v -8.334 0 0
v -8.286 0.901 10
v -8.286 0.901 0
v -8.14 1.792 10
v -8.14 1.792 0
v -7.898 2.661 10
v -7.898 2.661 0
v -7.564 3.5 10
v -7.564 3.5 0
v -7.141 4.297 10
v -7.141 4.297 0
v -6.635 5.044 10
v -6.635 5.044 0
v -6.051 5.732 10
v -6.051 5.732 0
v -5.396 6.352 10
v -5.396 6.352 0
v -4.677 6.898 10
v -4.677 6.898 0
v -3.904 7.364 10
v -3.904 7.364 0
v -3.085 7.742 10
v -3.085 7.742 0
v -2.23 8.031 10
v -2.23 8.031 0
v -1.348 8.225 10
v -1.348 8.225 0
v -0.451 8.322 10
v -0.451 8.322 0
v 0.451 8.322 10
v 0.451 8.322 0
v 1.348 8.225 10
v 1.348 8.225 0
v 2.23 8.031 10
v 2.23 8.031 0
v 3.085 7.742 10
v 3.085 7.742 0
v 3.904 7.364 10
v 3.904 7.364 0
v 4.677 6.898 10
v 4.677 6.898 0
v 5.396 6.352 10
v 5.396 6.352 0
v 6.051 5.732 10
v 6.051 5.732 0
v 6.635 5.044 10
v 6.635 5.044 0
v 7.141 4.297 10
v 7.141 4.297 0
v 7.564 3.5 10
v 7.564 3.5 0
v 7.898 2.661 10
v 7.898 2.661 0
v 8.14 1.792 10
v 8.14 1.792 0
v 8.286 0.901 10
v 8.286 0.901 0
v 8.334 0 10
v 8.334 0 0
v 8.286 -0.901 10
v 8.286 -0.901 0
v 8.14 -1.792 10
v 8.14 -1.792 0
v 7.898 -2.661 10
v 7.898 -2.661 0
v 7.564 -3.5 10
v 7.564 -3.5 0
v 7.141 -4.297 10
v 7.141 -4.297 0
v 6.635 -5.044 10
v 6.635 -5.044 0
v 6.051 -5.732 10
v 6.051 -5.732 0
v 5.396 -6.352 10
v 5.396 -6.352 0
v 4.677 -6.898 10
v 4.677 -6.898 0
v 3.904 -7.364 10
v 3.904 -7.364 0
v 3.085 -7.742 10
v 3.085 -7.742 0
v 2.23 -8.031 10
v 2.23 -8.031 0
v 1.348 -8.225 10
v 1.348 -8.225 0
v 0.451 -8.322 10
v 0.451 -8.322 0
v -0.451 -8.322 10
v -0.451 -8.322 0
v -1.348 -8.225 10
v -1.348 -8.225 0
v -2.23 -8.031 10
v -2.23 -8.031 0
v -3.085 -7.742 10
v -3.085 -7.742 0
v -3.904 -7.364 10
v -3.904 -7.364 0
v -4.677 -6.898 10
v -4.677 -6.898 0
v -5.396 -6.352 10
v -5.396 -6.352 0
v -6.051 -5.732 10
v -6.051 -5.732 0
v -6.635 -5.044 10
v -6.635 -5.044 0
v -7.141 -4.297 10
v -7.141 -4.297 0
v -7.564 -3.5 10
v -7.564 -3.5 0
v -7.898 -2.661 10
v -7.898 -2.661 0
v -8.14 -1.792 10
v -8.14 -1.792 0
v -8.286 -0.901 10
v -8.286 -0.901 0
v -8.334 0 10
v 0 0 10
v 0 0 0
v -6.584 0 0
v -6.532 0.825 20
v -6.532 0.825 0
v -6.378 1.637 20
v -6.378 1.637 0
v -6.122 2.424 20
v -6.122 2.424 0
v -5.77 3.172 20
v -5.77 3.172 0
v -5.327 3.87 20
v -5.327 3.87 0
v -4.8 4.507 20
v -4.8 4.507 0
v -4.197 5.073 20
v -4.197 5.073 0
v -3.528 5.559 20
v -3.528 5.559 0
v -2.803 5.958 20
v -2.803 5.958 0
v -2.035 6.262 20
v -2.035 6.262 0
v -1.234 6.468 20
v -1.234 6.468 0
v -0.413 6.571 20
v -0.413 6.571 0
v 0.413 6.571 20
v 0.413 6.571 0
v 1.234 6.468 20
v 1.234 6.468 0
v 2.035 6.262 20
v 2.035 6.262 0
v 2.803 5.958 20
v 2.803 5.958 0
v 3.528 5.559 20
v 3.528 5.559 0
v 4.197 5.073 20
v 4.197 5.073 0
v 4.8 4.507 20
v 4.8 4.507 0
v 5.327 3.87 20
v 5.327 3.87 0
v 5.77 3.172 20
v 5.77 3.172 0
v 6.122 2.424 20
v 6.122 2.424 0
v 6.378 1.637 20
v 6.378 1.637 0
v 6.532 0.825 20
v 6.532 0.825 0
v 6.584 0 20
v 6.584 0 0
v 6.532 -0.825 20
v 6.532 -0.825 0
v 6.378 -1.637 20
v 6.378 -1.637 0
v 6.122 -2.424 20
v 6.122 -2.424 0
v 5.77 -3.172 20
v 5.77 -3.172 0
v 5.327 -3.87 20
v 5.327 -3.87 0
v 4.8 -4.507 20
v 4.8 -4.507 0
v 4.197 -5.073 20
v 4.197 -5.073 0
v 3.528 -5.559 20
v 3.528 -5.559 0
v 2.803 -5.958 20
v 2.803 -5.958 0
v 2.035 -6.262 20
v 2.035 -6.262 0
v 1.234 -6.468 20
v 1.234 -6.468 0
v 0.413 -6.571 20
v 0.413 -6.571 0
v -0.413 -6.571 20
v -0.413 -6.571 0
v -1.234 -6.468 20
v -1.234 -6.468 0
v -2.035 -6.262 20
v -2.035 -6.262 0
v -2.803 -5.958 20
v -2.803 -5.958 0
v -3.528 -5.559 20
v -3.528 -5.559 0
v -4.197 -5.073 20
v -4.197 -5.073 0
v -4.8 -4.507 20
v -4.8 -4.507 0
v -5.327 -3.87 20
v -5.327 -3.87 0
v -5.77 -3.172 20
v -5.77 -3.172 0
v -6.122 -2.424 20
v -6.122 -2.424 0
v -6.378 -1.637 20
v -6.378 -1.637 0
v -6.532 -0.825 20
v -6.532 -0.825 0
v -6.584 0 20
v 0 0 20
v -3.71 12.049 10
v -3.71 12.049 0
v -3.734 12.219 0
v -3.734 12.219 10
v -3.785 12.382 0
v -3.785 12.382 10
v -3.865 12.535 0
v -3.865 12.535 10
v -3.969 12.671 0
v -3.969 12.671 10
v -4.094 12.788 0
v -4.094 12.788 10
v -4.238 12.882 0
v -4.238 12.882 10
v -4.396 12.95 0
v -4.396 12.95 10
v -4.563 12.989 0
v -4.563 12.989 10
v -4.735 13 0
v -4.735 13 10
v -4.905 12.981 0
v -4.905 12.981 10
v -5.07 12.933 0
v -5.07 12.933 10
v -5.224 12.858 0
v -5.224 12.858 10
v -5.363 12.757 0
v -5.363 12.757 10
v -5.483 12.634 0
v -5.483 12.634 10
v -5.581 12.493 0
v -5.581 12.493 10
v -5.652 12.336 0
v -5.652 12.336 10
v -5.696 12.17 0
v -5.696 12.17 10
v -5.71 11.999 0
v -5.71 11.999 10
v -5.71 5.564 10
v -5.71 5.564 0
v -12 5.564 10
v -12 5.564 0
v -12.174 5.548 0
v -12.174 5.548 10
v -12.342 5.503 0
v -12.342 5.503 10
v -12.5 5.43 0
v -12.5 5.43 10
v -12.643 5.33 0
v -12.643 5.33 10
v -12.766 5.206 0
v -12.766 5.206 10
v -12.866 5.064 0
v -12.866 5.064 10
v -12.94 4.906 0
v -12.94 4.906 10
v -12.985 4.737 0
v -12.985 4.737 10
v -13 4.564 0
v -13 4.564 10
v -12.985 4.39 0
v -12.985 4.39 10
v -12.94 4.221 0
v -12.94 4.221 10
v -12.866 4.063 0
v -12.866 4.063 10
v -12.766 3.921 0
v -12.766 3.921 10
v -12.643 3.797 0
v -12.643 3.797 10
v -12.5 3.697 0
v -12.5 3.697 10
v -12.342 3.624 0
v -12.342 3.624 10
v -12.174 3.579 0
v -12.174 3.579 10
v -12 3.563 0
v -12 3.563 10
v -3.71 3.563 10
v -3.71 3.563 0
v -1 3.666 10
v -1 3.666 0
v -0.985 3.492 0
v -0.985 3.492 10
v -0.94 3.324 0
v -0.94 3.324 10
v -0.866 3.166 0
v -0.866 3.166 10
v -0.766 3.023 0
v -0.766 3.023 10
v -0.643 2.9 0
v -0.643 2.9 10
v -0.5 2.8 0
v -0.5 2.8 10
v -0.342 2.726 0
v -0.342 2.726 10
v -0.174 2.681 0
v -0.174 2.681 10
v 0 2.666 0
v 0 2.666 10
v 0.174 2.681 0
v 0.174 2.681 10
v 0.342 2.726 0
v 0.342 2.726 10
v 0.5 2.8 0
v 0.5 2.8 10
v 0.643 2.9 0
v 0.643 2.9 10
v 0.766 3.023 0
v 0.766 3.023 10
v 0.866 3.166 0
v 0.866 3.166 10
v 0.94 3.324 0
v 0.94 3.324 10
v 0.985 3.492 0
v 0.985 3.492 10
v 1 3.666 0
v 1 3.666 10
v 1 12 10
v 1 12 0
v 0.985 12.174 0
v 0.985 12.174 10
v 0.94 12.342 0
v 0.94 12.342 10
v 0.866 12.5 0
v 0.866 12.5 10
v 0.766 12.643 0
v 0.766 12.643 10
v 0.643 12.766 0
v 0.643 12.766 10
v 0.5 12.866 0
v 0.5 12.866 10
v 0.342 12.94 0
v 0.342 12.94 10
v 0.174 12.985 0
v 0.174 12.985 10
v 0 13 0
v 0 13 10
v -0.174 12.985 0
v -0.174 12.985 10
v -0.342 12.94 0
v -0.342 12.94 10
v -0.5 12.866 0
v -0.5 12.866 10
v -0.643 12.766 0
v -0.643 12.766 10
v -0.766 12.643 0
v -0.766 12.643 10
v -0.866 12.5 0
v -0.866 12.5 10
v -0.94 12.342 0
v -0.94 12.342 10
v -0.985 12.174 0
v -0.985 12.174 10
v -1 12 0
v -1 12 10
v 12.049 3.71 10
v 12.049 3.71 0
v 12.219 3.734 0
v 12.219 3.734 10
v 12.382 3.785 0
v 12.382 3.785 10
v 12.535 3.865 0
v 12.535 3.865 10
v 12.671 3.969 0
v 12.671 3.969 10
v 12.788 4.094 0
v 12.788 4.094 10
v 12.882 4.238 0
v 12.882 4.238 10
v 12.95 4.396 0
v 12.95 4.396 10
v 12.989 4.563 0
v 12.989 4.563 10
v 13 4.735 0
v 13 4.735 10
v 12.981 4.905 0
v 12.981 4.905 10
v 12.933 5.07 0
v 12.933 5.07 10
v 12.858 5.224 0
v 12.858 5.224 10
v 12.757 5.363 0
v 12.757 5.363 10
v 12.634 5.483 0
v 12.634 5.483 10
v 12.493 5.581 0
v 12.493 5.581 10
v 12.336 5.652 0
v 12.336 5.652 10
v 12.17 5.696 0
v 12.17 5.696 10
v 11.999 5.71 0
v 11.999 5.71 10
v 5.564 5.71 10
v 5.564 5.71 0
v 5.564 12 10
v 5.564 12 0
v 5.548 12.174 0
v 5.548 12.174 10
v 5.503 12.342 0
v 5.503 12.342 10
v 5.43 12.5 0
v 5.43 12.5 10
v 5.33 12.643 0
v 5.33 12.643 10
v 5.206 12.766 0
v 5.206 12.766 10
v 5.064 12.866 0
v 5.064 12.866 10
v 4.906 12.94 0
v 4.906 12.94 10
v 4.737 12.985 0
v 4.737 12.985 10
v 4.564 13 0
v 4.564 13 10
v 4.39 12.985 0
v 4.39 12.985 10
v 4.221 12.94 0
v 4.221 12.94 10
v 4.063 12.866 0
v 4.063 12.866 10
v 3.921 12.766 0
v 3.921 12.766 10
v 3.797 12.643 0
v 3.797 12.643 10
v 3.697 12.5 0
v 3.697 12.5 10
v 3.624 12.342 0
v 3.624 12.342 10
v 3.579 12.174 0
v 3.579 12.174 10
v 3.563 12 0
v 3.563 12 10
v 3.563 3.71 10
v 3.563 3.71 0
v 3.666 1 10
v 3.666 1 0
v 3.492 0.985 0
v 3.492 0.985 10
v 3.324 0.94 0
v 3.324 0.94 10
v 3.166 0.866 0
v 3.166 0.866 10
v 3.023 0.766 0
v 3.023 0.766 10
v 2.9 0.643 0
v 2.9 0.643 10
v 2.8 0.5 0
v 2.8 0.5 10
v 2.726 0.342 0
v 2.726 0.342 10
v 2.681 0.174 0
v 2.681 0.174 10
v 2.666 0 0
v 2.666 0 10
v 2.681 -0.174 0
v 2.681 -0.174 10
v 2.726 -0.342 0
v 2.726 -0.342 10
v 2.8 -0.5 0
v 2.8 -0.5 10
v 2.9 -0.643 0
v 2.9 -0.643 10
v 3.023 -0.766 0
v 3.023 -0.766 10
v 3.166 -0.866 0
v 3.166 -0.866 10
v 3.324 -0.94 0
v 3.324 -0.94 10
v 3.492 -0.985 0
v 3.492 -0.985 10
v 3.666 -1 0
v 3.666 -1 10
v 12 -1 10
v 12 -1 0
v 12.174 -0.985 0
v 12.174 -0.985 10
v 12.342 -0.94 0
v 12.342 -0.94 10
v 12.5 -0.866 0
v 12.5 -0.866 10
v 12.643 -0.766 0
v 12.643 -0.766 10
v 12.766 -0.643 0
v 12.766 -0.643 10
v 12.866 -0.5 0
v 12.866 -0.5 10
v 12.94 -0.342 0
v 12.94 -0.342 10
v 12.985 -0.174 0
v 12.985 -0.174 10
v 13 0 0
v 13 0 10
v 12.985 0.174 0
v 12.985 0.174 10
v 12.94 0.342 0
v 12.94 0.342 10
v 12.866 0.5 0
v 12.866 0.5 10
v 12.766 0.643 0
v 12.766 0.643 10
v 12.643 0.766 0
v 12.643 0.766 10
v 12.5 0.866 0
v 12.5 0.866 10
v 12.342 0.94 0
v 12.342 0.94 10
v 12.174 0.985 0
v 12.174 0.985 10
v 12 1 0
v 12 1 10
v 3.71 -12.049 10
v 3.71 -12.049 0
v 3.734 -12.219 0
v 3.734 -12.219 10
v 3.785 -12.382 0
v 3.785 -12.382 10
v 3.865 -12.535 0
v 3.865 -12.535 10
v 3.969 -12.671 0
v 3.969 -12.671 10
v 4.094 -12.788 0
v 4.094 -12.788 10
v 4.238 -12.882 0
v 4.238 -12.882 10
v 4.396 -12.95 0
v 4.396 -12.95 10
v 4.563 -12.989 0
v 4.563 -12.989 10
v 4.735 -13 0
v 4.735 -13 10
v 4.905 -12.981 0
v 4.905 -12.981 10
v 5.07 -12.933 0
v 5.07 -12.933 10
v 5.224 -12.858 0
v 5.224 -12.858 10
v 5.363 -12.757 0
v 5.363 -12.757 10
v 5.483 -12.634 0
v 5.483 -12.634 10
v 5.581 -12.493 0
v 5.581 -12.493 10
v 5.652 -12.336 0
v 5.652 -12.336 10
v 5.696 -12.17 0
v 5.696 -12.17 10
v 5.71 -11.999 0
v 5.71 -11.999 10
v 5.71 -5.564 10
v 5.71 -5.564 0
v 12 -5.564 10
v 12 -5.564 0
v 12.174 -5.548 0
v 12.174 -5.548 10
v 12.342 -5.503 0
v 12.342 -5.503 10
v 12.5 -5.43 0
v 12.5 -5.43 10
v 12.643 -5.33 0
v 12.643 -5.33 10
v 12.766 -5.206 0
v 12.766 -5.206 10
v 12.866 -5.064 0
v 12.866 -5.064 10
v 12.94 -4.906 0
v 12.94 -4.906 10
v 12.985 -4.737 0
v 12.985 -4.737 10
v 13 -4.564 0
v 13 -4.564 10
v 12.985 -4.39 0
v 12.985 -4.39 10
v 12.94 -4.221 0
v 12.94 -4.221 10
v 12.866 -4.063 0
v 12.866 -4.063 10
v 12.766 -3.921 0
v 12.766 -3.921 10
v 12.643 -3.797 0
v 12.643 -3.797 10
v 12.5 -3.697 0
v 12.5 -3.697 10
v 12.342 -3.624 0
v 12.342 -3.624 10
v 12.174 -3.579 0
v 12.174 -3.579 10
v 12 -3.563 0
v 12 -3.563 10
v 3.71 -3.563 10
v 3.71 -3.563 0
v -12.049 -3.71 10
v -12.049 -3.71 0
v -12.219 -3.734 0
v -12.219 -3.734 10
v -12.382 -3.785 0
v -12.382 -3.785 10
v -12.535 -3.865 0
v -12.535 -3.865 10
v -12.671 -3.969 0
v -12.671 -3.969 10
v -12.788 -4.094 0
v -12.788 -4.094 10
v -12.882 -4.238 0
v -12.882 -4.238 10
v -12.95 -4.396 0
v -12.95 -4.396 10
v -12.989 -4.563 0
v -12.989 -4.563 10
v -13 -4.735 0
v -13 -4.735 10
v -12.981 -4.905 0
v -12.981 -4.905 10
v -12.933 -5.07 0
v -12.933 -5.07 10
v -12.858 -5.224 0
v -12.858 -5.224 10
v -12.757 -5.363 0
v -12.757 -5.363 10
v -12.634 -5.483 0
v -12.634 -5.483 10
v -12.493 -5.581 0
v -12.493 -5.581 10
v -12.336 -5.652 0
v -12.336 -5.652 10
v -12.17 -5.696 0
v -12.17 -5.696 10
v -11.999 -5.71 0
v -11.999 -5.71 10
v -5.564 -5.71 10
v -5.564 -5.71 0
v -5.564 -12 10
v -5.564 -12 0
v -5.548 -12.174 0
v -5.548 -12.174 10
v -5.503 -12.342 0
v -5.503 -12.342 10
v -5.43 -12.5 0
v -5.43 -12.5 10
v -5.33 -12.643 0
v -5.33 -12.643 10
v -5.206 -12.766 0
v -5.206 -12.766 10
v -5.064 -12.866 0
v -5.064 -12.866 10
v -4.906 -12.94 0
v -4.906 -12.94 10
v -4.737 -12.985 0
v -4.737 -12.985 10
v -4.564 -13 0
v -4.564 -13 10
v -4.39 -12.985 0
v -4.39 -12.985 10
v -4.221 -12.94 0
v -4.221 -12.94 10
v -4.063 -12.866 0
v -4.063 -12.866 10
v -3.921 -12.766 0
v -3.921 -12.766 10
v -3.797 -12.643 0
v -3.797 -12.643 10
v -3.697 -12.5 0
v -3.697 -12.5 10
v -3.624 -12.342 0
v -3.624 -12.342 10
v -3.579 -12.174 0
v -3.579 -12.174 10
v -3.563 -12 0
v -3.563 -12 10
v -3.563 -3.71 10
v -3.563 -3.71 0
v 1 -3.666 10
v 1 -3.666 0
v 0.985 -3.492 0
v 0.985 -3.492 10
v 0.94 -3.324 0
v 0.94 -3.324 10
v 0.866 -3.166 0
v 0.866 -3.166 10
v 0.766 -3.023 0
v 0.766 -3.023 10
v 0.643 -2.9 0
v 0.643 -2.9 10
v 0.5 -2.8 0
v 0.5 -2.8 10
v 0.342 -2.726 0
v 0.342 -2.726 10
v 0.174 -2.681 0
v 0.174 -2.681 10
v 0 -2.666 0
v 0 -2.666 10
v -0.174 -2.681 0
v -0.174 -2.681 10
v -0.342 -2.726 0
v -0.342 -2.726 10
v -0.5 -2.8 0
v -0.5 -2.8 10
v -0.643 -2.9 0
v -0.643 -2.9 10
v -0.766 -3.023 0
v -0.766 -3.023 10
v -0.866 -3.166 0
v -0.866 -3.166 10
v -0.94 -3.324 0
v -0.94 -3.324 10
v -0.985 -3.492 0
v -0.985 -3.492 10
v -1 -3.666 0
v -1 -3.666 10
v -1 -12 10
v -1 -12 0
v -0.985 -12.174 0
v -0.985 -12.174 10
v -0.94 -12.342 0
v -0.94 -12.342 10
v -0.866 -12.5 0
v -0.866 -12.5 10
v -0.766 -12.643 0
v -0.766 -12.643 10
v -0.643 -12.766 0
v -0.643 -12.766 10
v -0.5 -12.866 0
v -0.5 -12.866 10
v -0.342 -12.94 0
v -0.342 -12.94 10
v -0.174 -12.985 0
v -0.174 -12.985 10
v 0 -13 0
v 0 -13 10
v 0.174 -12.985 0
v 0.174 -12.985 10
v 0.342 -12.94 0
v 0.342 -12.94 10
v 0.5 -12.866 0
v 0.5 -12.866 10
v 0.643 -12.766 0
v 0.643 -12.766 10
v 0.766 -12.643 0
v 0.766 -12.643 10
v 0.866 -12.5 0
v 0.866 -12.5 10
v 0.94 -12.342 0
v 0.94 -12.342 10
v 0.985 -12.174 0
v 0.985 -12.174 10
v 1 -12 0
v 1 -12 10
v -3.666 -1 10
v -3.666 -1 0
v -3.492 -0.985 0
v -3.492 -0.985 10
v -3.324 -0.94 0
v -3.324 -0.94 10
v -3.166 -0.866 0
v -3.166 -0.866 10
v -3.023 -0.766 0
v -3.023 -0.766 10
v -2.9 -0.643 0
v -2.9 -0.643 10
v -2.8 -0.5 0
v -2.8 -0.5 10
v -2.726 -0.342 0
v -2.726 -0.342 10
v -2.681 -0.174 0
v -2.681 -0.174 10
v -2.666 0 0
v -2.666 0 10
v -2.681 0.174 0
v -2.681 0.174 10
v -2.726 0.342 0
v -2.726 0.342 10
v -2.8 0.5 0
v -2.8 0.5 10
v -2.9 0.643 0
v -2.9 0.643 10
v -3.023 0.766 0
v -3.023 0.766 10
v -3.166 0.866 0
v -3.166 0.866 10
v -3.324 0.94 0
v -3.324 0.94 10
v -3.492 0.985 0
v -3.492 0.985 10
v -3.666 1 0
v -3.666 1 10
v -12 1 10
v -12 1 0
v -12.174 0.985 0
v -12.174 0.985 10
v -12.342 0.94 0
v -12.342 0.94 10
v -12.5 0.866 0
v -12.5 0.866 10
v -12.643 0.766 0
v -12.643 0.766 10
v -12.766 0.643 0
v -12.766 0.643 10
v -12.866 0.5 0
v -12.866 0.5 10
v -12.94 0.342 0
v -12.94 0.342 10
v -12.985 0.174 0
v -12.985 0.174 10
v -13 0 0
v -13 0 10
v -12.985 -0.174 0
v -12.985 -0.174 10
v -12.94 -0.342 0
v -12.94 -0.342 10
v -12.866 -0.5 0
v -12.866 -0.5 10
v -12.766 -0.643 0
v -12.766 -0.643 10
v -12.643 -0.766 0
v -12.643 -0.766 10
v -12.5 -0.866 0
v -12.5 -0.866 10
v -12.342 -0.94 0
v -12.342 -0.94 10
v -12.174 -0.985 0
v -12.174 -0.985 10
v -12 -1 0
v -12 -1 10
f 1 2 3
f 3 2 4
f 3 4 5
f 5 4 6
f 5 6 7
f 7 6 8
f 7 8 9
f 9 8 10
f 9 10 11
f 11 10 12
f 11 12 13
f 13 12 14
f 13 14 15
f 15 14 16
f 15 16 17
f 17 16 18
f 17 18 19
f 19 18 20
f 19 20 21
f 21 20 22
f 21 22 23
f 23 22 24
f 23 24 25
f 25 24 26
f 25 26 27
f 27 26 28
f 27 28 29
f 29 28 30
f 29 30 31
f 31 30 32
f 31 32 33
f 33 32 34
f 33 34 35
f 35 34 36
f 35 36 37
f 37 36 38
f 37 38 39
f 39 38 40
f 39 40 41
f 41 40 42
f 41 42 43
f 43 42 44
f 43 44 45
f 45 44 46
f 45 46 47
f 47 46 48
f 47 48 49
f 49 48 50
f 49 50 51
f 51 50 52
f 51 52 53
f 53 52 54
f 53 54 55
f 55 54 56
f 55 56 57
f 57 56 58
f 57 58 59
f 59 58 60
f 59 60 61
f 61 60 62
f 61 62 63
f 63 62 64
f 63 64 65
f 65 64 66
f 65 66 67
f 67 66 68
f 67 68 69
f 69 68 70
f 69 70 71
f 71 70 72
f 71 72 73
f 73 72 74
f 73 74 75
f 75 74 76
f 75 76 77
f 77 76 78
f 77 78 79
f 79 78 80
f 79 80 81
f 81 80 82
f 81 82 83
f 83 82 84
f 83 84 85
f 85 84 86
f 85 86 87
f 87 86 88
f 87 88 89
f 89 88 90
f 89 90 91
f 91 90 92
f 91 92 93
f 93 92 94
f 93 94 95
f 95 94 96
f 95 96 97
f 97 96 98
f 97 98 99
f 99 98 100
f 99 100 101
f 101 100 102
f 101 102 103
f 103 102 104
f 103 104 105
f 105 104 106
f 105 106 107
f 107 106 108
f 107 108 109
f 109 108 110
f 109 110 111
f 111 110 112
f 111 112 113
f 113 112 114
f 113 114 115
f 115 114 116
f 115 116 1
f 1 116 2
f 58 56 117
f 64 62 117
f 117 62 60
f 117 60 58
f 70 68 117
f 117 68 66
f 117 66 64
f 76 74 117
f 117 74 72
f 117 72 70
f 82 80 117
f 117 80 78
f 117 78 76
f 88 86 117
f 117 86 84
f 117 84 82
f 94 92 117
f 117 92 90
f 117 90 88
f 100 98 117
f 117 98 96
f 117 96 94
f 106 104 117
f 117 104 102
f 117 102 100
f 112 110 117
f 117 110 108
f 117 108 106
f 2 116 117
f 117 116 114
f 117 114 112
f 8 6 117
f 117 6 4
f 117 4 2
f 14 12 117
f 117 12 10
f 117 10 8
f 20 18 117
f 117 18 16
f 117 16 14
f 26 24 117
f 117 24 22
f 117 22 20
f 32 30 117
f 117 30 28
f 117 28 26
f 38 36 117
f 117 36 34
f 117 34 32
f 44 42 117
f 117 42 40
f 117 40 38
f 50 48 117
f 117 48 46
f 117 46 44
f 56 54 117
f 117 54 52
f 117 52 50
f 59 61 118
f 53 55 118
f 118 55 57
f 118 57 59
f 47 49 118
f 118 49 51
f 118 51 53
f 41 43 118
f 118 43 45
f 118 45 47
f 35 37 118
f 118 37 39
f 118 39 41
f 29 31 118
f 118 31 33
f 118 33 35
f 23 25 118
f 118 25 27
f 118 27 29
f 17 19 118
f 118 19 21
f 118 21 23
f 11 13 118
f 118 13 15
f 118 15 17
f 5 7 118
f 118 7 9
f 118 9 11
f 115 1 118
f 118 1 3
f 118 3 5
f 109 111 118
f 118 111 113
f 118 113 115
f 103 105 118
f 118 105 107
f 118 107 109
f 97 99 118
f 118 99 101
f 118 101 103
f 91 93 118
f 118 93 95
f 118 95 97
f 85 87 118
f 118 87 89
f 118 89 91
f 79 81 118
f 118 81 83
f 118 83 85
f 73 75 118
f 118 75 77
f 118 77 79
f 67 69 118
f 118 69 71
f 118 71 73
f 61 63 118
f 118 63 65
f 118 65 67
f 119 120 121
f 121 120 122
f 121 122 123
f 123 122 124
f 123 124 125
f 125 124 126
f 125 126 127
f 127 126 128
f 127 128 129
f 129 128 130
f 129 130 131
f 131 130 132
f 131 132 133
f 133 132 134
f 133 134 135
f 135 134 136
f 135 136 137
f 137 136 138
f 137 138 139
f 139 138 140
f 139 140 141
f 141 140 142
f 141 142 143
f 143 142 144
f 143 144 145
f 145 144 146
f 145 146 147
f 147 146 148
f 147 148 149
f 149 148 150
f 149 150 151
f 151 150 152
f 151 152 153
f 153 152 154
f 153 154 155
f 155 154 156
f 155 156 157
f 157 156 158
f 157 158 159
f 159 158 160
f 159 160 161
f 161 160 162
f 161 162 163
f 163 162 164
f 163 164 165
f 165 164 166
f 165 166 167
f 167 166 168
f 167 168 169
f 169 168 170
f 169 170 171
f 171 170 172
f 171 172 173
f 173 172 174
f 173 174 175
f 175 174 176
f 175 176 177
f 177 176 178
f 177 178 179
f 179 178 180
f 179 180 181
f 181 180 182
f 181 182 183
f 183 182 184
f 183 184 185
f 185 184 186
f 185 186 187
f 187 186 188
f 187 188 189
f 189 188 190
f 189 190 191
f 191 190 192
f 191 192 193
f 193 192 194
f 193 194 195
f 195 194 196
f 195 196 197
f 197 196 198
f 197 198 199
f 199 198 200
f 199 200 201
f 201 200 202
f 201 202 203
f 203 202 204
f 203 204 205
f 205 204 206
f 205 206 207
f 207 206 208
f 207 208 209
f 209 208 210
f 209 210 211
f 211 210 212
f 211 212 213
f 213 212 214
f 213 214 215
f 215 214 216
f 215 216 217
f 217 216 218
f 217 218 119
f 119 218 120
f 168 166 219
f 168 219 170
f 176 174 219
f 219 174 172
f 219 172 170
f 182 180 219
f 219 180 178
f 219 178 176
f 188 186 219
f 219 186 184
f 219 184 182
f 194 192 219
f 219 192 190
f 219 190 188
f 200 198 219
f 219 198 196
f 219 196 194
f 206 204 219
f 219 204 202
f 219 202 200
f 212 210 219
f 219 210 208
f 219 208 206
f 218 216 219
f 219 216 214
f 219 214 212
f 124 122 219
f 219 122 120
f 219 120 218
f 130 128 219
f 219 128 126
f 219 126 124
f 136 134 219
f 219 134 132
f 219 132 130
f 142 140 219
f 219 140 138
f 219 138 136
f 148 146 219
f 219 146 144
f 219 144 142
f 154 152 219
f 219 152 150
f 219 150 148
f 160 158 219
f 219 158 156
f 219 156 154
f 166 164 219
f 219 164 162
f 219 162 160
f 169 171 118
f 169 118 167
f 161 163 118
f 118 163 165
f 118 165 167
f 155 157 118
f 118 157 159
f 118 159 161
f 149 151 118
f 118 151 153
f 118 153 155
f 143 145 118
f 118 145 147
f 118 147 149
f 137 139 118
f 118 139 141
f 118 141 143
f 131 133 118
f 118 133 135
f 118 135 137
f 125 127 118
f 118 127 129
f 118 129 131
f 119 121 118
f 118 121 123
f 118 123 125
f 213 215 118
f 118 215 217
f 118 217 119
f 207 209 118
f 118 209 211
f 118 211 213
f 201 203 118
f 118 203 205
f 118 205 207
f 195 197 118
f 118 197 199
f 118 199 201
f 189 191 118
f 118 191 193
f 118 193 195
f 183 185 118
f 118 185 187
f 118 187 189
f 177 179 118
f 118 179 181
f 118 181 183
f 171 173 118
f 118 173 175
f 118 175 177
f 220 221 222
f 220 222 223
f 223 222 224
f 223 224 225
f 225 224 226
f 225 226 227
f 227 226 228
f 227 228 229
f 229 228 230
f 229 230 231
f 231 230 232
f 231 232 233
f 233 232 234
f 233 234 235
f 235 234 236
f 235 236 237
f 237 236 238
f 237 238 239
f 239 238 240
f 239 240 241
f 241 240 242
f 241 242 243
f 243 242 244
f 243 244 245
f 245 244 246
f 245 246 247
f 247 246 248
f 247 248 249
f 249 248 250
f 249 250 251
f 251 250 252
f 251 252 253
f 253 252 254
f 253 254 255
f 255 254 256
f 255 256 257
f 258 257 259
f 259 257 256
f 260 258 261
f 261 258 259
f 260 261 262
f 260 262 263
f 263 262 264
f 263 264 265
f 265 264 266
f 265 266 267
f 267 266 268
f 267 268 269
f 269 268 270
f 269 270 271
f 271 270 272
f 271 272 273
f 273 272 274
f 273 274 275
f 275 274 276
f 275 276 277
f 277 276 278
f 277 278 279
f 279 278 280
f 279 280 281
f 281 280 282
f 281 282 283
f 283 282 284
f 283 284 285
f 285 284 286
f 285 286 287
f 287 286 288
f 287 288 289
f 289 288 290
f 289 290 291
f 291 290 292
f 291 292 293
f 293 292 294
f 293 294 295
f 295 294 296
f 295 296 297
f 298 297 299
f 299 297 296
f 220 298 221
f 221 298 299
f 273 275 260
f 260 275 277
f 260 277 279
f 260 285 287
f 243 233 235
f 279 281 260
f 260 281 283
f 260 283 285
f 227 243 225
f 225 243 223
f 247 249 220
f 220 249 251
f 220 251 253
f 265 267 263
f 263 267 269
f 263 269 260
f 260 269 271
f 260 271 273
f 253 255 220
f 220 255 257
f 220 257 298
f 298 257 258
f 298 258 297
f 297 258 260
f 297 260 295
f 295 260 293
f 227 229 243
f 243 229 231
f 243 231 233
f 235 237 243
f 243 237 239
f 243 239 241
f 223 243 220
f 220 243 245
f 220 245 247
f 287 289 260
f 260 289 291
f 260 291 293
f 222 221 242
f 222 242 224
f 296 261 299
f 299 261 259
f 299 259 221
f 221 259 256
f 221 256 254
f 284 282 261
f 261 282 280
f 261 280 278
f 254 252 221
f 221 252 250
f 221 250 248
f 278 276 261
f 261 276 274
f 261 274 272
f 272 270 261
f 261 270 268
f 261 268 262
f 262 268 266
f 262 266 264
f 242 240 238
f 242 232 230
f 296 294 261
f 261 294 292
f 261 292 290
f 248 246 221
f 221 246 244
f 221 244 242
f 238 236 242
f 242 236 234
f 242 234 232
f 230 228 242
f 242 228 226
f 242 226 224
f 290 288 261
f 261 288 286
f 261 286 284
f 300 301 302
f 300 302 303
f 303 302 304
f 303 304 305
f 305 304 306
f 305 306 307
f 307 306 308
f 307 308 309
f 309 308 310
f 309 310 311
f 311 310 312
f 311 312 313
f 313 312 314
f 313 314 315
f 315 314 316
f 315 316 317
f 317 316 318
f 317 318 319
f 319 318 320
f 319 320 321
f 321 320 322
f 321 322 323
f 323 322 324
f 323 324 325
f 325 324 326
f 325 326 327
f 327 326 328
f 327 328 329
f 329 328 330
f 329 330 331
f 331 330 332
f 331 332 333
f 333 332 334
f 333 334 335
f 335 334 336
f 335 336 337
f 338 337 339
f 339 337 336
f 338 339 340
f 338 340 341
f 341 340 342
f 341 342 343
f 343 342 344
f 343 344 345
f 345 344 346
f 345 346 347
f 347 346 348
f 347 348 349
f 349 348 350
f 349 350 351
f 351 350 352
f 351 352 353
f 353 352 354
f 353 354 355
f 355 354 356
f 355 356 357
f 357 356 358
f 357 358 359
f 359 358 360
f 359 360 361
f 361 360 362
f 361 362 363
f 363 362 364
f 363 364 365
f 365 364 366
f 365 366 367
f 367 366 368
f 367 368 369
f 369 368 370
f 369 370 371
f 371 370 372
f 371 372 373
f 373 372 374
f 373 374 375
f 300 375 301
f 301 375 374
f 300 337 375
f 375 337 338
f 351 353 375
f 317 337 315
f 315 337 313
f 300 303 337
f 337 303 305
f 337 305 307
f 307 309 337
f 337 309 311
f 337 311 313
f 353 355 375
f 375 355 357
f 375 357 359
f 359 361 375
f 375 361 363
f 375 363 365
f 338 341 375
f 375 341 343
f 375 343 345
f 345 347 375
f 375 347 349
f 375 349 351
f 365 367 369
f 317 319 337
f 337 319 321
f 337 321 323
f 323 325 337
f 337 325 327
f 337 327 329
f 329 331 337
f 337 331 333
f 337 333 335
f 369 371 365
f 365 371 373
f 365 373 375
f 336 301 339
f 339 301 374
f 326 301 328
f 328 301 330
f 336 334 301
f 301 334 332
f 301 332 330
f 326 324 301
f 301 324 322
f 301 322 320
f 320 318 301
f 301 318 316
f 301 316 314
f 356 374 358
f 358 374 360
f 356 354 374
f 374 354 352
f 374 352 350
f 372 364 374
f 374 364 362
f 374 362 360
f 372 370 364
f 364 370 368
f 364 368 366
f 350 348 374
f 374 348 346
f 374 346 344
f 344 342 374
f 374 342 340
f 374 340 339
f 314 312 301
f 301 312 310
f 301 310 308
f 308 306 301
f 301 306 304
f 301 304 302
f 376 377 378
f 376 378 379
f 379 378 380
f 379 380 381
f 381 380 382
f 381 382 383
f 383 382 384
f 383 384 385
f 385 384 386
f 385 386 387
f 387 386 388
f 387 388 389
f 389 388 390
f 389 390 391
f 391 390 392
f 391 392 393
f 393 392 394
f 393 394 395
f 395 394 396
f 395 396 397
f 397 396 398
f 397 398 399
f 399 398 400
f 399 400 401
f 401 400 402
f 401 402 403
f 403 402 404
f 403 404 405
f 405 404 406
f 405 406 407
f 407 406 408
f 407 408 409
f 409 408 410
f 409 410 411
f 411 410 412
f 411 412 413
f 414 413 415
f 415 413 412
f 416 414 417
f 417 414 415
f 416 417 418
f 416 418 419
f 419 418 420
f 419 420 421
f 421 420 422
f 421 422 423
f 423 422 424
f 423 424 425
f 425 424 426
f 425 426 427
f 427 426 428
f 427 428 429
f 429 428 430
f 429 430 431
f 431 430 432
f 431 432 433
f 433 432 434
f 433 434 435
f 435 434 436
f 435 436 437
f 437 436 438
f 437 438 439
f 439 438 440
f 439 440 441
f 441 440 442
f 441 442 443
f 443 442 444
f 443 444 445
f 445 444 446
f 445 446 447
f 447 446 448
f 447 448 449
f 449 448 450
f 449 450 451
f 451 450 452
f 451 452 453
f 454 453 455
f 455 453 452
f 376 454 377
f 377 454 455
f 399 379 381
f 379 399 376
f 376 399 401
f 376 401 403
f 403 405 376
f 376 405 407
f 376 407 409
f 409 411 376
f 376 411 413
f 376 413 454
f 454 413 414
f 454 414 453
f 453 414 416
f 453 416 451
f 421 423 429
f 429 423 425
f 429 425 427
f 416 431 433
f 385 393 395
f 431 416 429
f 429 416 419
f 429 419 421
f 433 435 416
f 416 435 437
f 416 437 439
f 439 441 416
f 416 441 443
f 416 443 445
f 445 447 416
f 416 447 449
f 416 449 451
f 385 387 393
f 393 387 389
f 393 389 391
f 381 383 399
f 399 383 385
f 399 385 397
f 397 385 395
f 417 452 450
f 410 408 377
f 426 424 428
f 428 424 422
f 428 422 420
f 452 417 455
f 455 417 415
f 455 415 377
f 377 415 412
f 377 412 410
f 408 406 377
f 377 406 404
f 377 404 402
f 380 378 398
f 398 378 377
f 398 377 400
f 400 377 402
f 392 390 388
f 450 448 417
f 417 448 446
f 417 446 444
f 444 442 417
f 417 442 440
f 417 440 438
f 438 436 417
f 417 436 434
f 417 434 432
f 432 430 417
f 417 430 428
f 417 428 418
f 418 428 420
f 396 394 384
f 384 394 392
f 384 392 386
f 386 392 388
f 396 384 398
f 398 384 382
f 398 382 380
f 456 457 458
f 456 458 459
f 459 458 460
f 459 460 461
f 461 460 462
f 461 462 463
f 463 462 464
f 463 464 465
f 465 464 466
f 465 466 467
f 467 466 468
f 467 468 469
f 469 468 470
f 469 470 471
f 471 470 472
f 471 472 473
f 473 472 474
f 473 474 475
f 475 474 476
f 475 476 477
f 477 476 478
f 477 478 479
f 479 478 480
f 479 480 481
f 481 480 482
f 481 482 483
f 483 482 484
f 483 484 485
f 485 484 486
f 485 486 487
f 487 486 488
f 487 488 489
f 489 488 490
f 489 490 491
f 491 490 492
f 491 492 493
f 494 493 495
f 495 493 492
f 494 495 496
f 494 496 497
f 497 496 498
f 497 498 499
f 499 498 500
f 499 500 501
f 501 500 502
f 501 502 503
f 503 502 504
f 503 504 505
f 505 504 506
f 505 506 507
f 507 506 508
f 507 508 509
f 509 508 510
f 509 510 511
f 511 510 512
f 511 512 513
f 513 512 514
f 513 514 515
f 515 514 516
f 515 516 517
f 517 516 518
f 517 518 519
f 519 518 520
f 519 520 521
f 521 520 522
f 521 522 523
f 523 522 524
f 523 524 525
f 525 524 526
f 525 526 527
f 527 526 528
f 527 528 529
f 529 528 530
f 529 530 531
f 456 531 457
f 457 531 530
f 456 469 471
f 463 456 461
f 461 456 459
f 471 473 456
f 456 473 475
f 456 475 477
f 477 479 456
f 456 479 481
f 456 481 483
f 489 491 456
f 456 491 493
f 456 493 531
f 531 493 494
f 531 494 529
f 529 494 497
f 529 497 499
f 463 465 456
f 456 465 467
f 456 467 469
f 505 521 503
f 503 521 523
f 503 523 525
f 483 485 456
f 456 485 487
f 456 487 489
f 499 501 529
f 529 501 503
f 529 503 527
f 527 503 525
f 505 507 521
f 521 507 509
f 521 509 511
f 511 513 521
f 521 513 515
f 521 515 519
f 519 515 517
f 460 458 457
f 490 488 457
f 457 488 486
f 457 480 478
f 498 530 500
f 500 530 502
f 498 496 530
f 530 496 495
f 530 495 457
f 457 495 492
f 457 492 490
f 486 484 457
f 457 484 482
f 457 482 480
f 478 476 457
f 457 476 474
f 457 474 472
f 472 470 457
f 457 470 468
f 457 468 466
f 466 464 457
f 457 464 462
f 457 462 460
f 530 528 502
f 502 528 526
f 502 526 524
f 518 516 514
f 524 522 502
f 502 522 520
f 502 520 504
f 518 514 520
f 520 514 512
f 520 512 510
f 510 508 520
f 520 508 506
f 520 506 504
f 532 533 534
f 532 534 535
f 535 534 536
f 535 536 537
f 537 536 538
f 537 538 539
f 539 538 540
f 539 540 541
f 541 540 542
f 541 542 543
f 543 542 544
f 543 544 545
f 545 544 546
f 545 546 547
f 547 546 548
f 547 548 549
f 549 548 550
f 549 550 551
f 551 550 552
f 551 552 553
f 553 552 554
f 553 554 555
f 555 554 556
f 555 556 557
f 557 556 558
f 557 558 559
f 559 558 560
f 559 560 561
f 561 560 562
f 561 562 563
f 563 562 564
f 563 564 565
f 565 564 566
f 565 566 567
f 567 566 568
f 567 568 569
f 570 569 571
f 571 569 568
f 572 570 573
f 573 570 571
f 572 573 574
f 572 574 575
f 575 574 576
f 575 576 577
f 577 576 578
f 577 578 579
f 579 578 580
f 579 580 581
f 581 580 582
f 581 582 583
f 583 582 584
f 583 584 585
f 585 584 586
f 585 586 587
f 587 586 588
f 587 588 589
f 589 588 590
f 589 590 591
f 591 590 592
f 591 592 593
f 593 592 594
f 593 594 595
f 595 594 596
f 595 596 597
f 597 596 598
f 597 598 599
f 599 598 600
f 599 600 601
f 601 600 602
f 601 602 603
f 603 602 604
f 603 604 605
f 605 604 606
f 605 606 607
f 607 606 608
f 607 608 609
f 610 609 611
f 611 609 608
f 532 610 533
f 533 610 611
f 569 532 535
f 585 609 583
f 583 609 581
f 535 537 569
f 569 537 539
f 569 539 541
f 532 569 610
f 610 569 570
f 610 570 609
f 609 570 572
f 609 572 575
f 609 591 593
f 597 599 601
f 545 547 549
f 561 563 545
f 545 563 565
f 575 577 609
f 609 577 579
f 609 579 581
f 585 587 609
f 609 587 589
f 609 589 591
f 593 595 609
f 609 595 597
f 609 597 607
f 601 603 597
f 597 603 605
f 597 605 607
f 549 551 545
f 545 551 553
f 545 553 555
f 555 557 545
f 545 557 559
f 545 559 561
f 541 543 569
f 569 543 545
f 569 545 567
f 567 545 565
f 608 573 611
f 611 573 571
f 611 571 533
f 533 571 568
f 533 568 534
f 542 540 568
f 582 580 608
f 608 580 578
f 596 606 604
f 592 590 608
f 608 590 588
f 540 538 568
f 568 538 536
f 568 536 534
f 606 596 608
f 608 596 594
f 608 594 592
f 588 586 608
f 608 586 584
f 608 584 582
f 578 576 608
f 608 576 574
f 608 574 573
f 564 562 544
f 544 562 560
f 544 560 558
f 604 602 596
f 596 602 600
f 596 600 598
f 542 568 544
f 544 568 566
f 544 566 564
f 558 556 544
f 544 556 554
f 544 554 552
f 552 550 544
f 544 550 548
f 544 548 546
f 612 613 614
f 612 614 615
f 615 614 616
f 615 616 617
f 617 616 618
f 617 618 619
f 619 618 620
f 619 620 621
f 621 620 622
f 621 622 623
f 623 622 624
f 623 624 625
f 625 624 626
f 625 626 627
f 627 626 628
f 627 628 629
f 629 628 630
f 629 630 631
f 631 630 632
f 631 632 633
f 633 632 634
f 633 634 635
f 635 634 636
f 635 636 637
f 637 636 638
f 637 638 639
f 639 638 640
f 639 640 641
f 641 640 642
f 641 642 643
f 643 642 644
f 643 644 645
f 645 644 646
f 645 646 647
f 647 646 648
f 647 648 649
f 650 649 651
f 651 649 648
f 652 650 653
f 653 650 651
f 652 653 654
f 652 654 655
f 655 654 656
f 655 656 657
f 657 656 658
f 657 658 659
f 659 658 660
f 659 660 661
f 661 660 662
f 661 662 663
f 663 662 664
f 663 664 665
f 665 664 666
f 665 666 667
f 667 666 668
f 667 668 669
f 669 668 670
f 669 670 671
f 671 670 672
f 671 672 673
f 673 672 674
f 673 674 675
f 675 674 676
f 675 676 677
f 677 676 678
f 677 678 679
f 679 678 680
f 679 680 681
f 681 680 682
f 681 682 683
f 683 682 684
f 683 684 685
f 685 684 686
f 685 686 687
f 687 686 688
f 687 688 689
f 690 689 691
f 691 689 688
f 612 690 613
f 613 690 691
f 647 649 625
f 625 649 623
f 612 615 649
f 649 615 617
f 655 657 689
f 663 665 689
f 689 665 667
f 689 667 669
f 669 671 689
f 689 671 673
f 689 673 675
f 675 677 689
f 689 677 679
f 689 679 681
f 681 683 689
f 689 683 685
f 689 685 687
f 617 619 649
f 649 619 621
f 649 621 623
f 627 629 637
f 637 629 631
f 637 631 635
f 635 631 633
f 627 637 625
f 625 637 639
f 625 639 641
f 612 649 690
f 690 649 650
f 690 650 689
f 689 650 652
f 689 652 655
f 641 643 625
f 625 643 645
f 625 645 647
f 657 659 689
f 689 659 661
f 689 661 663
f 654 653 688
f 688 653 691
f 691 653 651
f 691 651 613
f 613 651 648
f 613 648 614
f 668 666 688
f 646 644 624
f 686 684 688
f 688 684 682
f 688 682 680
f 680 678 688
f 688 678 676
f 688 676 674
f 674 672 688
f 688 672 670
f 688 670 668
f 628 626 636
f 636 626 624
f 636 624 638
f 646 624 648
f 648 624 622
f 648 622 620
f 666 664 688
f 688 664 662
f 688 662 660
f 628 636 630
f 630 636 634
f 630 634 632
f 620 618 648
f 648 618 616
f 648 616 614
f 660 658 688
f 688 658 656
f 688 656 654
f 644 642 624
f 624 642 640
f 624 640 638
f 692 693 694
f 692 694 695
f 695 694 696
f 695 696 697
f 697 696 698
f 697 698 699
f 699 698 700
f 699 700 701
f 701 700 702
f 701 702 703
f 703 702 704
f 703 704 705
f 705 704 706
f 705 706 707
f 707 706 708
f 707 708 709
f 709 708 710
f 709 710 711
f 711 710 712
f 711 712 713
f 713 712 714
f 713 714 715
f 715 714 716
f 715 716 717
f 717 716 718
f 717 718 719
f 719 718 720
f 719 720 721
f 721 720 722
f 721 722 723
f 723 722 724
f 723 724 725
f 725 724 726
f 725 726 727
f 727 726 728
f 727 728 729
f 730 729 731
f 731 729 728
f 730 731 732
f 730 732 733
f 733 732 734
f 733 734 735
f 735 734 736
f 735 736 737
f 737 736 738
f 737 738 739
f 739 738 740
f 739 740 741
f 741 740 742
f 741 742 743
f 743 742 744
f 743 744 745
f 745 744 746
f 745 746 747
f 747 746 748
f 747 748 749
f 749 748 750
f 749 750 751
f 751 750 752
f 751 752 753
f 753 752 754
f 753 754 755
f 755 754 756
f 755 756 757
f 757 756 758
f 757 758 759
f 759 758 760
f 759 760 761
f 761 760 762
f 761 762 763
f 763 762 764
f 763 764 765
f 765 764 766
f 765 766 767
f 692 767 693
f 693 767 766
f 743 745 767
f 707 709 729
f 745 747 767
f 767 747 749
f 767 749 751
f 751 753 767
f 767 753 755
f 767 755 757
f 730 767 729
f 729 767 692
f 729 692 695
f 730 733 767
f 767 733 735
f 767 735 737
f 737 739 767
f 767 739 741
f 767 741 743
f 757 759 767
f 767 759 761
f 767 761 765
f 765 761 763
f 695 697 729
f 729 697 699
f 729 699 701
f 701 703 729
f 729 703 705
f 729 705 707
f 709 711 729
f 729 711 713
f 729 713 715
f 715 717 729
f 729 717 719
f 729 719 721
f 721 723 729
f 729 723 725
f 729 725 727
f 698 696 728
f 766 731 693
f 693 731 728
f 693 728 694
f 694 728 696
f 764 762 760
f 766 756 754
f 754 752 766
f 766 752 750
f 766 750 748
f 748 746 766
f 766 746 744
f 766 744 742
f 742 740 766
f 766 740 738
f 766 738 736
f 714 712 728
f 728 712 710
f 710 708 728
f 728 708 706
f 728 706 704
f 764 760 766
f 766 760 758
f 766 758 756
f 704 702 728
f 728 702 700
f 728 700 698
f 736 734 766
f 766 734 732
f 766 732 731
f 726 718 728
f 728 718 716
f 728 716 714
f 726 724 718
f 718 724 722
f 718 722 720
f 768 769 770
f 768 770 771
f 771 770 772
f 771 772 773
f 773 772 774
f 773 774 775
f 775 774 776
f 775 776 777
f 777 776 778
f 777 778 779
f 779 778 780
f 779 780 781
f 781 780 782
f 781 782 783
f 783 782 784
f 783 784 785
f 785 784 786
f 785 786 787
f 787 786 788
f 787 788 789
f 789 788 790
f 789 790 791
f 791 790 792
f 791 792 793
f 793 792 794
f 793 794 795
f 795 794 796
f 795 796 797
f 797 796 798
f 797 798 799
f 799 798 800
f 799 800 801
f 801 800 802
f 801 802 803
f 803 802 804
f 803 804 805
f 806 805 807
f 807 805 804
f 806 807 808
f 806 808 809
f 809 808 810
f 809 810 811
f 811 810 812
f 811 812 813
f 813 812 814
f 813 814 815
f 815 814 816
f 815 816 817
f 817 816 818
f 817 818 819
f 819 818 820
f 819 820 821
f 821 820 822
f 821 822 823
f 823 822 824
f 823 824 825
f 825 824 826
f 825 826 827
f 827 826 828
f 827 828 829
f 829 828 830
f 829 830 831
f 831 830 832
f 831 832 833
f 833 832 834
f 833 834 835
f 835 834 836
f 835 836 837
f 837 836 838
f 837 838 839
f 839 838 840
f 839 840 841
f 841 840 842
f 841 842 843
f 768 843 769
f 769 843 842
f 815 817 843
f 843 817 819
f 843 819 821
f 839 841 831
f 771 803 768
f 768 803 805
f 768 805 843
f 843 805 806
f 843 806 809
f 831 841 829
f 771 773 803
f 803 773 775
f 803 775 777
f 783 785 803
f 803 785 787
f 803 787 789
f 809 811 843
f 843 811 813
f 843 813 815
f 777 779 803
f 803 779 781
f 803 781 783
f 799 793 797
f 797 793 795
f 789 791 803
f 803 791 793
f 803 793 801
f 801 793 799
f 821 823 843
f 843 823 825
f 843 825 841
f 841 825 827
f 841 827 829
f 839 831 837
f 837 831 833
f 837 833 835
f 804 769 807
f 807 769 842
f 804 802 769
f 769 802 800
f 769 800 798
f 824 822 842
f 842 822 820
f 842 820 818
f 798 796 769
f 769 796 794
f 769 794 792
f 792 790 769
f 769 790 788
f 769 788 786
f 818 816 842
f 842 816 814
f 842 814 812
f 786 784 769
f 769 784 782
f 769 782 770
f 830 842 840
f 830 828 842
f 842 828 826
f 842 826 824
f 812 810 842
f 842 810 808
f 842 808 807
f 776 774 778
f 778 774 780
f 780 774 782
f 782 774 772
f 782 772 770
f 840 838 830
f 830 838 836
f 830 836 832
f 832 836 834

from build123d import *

# Parameters (mm, degrees)
BOSS_EXTRUDE1_DEPTH   = 10
BOSS_EXTRUDE1_2_DEPTH = 10
BOSS_EXTRUDE1_3_DEPTH = 10
BOSS_EXTRUDE1_4_DEPTH = 10
BOSS_EXTRUDE1_5_DEPTH = 10
BOSS_EXTRUDE1_6_DEPTH = 10
BOSS_EXTRUDE1_7_DEPTH = 10
BOSS_EXTRUDE1_8_DEPTH = 10
SKETCH2_R             = 8.334375
BOSS_EXTRUDE2_DEPTH   = 10
SKETCH3_R             = 6.584375
BOSS_EXTRUDE3_DEPTH   = 20


with BuildPart() as part:
    # Sketch1 → Boss-Extrude1 (new body)
    with BuildSketch(Plane.XY):
        with BuildLine():
            Line((-1, 3.665680024), (-1, 12))
            ThreePointArc((-1, 12), (0, 13), (1, 12))
            Line((1, 12), (1, 3.665680024))
            ThreePointArc((1, 3.665680024), (0, 2.665680024), (-1, 3.665680024))
        make_face()
    extrude(amount=BOSS_EXTRUDE1_DEPTH)


with BuildPart() as body_2:
    # Sketch1 → Boss-Extrude1 2 (new body)
    with BuildSketch(Plane.XY):
        with BuildLine():
            Line((5.5637058, 11.999998584), (5.5637058, 5.710489197))
            Line((5.5637058, 5.710489197), (11.999393728, 5.710489197))
            ThreePointArc((11.999393728, 5.710489197), (12.999696818, 4.734512976), (12.048638904, 3.710489197))
            Line((12.048638904, 3.710489197), (3.563457884, 3.710489197))
            Line((3.563457884, 3.710489197), (3.563457884, 11.999876038))
            ThreePointArc((3.563457884, 11.999876038), (4.563520572, 12.999999998), (5.5637058, 11.999998584))
        make_face()
    extrude(amount=BOSS_EXTRUDE1_2_DEPTH)


with BuildPart() as body_3:
    # Sketch1 → Boss-Extrude1 3 (new body)
    with BuildSketch(Plane.XY):
        with BuildLine():
            Line((11.999998584, -5.5637058), (5.710489197, -5.5637058))
            Line((5.710489197, -5.5637058), (5.710489197, -11.999393728))
            ThreePointArc((5.710489197, -11.999393728), (4.734512976, -12.999696818), (3.710489197, -12.048638904))
            Line((3.710489197, -12.048638904), (3.710489197, -3.563457884))
            Line((3.710489197, -3.563457884), (11.999876038, -3.563457884))
            ThreePointArc((11.999876038, -3.563457884), (12.999999998, -4.563520572), (11.999998584, -5.5637058))
        make_face()
    extrude(amount=BOSS_EXTRUDE1_3_DEPTH)


with BuildPart() as body_4:
    # Sketch1 → Boss-Extrude1 4 (new body)
    with BuildSketch(Plane.XY):
        with BuildLine():
            Line((3.665680024, 1), (12, 1))
            ThreePointArc((12, 1), (13, 0), (12, -1))
            Line((12, -1), (3.665680024, -1))
            ThreePointArc((3.665680024, -1), (2.665680024, 0), (3.665680024, 1))
        make_face()
    extrude(amount=BOSS_EXTRUDE1_4_DEPTH)


with BuildPart() as body_5:
    # Sketch1 → Boss-Extrude1 5 (new body)
    with BuildSketch(Plane.XY):
        with BuildLine():
            Line((-5.5637058, -11.999998584), (-5.5637058, -5.710489197))
            Line((-5.5637058, -5.710489197), (-11.999393728, -5.710489197))
            ThreePointArc((-11.999393728, -5.710489197), (-12.999696818, -4.734512976), (-12.048638904, -3.710489197))
            Line((-12.048638904, -3.710489197), (-3.563457884, -3.710489197))
            Line((-3.563457884, -3.710489197), (-3.563457884, -11.999876038))
            ThreePointArc((-3.563457884, -11.999876038), (-4.563520572, -12.999999998), (-5.5637058, -11.999998584))
        make_face()
    extrude(amount=BOSS_EXTRUDE1_5_DEPTH)


with BuildPart() as body_6:
    # Sketch1 → Boss-Extrude1 6 (new body)
    with BuildSketch(Plane.XY):
        with BuildLine():
            Line((1, -3.665680024), (1, -12))
            ThreePointArc((1, -12), (0, -13), (-1, -12))
            Line((-1, -12), (-1, -3.665680024))
            ThreePointArc((-1, -3.665680024), (0, -2.665680024), (1, -3.665680024))
        make_face()
    extrude(amount=BOSS_EXTRUDE1_6_DEPTH)


with BuildPart() as body_7:
    # Sketch1 → Boss-Extrude1 7 (new body)
    with BuildSketch(Plane.XY):
        with BuildLine():
            Line((-3.665680024, -1), (-12, -1))
            ThreePointArc((-12, -1), (-13, 0), (-12, 1))
            Line((-12, 1), (-3.665680024, 1))
            ThreePointArc((-3.665680024, 1), (-2.665680024, 0), (-3.665680024, -1))
        make_face()
    extrude(amount=BOSS_EXTRUDE1_7_DEPTH)


with BuildPart() as body_8:
    # Sketch1 → Boss-Extrude1 8 (new body)
    with BuildSketch(Plane.XY):
        with BuildLine():
            Line((-11.999998584, 5.5637058), (-5.710489197, 5.5637058))
            Line((-5.710489197, 5.5637058), (-5.710489197, 11.999393728))
            ThreePointArc((-5.710489197, 11.999393728), (-4.734512976, 12.999696818), (-3.710489197, 12.048638904))
            Line((-3.710489197, 12.048638904), (-3.710489197, 3.563457884))
            Line((-3.710489197, 3.563457884), (-11.999876038, 3.563457884))
            ThreePointArc((-11.999876038, 3.563457884), (-12.999999998, 4.563520572), (-11.999998584, 5.5637058))
        make_face()
    extrude(amount=BOSS_EXTRUDE1_8_DEPTH)


with BuildPart() as body_9:
    # Sketch2 → Boss-Extrude2 (new body)
    with BuildSketch(Plane.XY):
        Circle(SKETCH2_R)
    extrude(amount=BOSS_EXTRUDE2_DEPTH)


with BuildPart() as body_10:
    # Sketch3 → Boss-Extrude3 (new body)
    with BuildSketch(Plane.XY):
        Circle(SKETCH3_R)
    extrude(amount=BOSS_EXTRUDE3_DEPTH)


solid = Compound([part.part, body_2.part, body_3.part, body_4.part, body_5.part, body_6.part, body_7.part, body_8.part, body_9.part, body_10.part])
